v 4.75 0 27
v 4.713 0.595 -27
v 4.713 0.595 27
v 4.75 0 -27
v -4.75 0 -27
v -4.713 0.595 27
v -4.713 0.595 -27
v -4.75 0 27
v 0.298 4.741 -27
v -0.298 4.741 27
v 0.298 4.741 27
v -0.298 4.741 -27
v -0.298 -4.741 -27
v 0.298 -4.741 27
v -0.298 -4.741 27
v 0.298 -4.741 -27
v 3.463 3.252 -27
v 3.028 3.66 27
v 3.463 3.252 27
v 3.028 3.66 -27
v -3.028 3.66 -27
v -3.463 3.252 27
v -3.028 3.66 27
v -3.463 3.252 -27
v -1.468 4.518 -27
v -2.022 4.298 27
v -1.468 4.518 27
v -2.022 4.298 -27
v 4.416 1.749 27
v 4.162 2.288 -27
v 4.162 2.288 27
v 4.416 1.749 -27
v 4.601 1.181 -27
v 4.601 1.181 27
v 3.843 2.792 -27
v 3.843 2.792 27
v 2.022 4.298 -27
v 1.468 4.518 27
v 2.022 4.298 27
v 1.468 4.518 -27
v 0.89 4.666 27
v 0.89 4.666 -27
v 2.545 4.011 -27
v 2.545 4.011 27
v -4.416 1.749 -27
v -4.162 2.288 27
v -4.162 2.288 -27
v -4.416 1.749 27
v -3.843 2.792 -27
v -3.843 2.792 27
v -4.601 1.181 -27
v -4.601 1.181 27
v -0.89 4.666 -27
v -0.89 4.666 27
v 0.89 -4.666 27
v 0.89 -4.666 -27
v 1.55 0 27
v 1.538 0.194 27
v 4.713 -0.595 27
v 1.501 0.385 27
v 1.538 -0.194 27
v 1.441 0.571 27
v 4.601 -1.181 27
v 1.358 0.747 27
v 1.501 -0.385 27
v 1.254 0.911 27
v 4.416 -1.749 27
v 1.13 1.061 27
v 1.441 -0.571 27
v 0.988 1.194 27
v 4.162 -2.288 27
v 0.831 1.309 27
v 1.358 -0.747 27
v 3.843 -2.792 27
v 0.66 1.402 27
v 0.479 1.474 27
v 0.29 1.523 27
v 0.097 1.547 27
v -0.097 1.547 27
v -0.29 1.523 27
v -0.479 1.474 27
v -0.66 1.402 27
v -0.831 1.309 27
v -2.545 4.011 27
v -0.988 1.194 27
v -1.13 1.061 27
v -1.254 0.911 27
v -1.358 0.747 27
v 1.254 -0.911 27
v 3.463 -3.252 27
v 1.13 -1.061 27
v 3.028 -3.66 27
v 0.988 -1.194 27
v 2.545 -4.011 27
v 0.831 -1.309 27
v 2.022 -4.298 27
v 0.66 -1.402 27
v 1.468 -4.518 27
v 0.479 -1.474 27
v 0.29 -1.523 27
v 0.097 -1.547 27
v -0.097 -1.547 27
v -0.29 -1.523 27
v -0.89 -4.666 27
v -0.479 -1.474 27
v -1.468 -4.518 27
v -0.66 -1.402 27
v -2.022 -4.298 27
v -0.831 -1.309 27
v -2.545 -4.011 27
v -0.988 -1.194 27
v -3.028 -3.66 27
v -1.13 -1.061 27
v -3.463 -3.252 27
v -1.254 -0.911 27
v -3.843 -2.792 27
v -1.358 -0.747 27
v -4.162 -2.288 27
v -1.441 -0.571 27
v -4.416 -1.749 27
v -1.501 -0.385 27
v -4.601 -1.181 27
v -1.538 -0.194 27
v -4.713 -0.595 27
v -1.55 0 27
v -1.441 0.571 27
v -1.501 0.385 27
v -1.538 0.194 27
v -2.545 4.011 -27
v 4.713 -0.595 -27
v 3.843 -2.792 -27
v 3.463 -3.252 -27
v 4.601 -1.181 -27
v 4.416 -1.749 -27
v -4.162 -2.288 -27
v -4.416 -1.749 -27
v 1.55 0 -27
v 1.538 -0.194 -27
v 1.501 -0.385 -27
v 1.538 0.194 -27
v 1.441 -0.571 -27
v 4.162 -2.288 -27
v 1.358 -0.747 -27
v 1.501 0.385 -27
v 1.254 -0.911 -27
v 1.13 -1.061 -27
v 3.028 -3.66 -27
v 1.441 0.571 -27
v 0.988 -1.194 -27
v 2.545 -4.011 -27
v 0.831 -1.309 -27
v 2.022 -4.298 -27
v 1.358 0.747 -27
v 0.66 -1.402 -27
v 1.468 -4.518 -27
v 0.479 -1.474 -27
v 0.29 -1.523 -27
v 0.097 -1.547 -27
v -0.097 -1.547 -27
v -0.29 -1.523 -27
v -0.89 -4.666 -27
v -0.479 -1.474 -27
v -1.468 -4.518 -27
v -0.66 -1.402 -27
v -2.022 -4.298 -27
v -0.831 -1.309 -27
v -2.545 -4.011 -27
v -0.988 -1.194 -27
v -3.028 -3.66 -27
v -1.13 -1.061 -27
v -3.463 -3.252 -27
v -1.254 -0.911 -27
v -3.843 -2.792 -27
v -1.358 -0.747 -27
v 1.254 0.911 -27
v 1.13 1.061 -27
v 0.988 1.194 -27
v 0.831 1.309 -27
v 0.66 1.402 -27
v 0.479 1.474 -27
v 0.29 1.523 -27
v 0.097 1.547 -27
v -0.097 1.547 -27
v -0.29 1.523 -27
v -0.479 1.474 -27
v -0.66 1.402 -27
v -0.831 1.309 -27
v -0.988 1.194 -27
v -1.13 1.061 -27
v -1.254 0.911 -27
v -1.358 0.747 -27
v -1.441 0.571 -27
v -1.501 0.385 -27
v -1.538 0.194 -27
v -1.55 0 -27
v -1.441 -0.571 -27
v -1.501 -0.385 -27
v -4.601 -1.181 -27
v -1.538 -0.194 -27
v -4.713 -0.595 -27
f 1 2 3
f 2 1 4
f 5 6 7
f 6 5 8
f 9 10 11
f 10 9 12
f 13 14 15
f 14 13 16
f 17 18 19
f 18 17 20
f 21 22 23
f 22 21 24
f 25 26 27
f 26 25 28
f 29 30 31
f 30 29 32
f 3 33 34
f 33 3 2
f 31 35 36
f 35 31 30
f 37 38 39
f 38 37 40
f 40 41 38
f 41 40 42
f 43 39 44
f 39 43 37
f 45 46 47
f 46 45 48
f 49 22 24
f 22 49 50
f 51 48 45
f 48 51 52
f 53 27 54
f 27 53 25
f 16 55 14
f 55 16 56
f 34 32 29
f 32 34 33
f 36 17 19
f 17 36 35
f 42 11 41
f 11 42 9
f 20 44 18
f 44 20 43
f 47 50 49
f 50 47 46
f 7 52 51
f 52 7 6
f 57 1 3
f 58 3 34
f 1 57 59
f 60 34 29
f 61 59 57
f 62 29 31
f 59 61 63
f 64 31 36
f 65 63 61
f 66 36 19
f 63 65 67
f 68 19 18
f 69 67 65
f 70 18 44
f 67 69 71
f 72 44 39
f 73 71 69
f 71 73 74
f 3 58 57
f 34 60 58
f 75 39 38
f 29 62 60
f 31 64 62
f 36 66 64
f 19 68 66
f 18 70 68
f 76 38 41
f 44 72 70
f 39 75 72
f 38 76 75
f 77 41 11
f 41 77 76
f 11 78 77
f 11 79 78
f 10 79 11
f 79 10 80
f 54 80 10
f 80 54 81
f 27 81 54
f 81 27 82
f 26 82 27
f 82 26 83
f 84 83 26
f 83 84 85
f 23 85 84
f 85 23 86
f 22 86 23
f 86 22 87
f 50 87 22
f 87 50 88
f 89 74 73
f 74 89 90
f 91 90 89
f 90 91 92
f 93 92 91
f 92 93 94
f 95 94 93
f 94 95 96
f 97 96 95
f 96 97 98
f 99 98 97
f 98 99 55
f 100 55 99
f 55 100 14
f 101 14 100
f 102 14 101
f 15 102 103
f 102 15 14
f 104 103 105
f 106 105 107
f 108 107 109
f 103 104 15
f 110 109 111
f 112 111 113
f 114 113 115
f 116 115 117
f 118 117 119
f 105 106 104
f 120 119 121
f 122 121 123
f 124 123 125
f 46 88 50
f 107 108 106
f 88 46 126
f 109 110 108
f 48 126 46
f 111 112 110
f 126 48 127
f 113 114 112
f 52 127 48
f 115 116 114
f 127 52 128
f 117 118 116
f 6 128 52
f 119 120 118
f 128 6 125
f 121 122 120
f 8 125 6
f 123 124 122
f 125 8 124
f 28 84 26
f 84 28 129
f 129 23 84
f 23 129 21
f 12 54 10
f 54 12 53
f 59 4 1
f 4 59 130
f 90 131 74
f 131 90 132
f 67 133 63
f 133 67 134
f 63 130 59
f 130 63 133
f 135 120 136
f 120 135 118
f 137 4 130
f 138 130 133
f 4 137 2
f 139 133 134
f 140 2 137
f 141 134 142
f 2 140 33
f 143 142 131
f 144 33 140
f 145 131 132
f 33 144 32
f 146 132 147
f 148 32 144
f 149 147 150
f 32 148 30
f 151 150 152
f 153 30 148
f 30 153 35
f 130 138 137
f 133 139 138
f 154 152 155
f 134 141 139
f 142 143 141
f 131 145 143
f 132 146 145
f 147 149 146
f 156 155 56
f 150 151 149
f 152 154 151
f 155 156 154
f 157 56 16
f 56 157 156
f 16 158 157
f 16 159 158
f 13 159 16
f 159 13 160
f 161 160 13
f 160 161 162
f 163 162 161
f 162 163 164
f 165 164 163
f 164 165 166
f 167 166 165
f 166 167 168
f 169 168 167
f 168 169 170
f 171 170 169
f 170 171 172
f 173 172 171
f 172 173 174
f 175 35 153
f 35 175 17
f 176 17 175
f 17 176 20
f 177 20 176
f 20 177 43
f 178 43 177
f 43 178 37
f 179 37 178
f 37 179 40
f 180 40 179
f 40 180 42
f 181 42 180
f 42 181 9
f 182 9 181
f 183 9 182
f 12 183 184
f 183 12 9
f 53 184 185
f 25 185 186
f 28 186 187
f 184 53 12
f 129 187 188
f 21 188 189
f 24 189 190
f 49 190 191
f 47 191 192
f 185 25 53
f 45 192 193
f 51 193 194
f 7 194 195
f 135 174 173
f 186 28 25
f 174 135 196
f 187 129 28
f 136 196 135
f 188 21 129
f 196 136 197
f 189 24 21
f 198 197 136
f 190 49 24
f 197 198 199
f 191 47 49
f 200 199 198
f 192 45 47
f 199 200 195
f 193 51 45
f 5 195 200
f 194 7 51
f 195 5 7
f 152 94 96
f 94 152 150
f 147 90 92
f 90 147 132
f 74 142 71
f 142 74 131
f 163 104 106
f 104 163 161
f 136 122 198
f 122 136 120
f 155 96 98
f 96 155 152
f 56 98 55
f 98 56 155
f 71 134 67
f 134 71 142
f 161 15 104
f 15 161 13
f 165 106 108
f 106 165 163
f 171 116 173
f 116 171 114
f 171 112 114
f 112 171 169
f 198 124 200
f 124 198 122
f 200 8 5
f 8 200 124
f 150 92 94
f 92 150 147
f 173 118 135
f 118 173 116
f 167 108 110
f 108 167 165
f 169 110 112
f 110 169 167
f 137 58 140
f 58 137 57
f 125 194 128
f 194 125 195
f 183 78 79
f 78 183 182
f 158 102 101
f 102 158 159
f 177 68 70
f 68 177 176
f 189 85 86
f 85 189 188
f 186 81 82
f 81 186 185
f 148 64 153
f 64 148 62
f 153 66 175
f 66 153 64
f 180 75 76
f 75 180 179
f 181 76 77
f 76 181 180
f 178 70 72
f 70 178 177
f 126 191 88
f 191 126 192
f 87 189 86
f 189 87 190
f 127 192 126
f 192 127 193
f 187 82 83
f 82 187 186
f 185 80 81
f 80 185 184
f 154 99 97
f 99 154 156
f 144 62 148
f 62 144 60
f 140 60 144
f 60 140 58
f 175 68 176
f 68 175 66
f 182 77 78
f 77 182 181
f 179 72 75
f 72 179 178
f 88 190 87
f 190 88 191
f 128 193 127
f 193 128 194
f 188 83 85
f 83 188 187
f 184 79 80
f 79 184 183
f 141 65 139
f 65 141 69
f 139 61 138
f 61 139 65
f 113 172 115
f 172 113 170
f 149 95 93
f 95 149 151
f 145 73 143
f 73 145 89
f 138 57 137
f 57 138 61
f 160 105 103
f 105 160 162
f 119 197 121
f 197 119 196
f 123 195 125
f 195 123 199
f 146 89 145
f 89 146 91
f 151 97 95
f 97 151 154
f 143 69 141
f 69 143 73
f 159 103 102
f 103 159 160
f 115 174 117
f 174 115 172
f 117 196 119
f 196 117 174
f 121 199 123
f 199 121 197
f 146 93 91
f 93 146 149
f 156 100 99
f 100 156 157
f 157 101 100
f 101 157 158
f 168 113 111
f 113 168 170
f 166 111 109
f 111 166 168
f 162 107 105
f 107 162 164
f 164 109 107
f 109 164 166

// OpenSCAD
$fn = 50;


difference() {
	union() {
		translate(v = [0, 0, -27.0000000000]) {
			cylinder(h = 54, r = 4.7500000000);
		}
	}
	union() {
		translate(v = [0, 0, -100.0000000000]) {
			cylinder(h = 200, r = 1.5500000000);
		}
	}
}
